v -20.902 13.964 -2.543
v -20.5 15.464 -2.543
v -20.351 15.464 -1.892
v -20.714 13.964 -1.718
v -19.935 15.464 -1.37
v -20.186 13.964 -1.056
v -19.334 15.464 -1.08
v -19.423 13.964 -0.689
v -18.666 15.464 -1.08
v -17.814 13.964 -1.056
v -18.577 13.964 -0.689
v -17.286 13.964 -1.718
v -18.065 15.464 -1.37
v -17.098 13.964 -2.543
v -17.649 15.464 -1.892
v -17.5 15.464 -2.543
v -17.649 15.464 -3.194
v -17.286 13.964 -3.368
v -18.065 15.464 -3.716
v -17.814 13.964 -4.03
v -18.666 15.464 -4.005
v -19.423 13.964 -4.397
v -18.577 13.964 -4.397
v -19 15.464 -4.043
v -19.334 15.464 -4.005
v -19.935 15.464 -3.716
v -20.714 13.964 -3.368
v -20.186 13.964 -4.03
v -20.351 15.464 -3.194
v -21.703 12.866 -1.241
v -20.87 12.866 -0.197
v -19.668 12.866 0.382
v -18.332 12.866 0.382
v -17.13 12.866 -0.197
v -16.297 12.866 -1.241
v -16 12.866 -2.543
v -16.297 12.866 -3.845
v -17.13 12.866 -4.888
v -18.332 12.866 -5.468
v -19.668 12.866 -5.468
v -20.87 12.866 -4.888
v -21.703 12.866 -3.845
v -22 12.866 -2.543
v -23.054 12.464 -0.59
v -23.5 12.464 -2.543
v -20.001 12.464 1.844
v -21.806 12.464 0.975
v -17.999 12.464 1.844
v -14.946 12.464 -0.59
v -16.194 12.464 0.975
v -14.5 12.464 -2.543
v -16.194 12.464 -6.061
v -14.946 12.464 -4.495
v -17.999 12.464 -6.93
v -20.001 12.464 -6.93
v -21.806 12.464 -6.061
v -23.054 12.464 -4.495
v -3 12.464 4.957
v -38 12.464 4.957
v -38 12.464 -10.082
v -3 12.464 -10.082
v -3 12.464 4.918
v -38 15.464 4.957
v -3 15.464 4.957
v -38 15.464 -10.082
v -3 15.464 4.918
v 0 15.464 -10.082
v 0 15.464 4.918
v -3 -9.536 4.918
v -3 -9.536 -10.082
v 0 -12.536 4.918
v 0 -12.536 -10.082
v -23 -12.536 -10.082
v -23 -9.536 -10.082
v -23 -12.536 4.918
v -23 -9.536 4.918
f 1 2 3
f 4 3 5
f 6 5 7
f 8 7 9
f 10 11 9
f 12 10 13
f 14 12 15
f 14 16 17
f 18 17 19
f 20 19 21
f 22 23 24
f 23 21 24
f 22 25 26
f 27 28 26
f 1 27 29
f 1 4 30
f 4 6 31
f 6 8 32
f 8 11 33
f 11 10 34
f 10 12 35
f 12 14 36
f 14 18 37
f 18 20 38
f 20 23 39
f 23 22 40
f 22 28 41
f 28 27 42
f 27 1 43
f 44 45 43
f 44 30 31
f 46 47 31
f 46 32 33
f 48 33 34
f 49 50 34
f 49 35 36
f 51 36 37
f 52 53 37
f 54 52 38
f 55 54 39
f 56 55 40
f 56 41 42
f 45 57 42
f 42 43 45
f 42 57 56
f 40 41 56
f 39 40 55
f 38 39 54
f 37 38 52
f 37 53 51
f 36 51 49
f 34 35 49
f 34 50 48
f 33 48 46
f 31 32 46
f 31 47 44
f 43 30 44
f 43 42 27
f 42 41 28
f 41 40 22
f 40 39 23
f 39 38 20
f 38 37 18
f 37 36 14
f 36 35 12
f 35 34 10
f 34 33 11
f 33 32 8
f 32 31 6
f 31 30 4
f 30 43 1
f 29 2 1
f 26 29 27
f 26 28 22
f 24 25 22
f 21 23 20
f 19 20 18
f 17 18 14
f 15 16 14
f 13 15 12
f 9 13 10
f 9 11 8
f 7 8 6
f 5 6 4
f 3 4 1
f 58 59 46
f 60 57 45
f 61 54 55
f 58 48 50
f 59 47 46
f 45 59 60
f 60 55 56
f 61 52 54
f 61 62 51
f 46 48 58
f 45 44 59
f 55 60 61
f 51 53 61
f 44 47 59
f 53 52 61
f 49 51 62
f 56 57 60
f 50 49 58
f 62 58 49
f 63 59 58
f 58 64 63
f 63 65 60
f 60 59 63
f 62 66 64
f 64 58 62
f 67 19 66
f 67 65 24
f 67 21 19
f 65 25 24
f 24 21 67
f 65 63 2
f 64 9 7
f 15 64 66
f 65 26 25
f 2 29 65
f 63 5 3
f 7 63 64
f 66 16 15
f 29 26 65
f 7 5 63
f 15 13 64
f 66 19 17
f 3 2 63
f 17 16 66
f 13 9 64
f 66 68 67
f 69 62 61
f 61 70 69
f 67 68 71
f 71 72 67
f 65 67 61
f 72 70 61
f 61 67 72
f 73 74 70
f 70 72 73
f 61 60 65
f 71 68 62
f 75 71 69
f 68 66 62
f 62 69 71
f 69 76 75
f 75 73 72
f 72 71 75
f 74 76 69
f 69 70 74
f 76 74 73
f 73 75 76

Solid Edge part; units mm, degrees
sketch "Sketch1" plane through (0, 0, 0) normal (1, 0, 0) x (0, 1, 0)
  line L0 (-12.5363, -10.0816) -> (15.4637, -10.0816)
  line L1 (15.4637, -10.0816) -> (15.4637, 4.9184)
  line L2 (15.4637, 4.9184) -> (-12.5363, 4.9184)
  line L3 (-12.5363, 4.9184) -> (-12.5363, -10.0816)
  dimension "D1" = 15
  dimension "D2" = 28
extrude "Protrusion1" add sketch "Sketch1" against normal blind 3
sketch "Sketch2" plane through (-3, 1.4637, -2.5816) normal (-1, 0, 0) x (0, 1, 0)
  line L0 (14, 7.5) -> (11, 7.5)
  line L1 (11, 7.5) -> (11, -7.5388)
  line L2 (11, -7.5388) -> (14, -7.5388)
  line L3 (14, -7.5388) -> (14, 7.5)
extrude "ProtrusiónExtruida_8" add sketch "Sketch2" along normal blind 35
sketch "Sketch3" plane through (-3, -0.0363, -2.5816) normal (-1, 0, 0) x (0, 1, 0)
  line L0 (-12.5, 7.5) -> (-9.5, 7.5)
  line L1 (-9.5, 7.5) -> (-9.5, -7.5)
  line L2 (-9.5, -7.5) -> (-12.5, -7.5)
  line L3 (-12.5, -7.5) -> (-12.5, 7.5)
extrude "ProtrusiónExtruida_9" add sketch "Sketch3" along normal blind 20
sketch "Sketch4" plane through (-19, 15.4637, -2.5622) normal (0, 1, 0) x (0, 0, -1)
  circle A0 centre (-0.0194, 0) radius 1.5
  dimension "D1" = 38
  dimension "D2" = 19
  dimension "D3" = 15.0388
  dimension "D4" = 7.5
extrude "VaciadoExtruido_2" cut sketch "Sketch4" against normal blind 13.4467
fillet "Redondeo_1" radius 3 1 edges at (-17.5, 12.4637, -2.5429)
